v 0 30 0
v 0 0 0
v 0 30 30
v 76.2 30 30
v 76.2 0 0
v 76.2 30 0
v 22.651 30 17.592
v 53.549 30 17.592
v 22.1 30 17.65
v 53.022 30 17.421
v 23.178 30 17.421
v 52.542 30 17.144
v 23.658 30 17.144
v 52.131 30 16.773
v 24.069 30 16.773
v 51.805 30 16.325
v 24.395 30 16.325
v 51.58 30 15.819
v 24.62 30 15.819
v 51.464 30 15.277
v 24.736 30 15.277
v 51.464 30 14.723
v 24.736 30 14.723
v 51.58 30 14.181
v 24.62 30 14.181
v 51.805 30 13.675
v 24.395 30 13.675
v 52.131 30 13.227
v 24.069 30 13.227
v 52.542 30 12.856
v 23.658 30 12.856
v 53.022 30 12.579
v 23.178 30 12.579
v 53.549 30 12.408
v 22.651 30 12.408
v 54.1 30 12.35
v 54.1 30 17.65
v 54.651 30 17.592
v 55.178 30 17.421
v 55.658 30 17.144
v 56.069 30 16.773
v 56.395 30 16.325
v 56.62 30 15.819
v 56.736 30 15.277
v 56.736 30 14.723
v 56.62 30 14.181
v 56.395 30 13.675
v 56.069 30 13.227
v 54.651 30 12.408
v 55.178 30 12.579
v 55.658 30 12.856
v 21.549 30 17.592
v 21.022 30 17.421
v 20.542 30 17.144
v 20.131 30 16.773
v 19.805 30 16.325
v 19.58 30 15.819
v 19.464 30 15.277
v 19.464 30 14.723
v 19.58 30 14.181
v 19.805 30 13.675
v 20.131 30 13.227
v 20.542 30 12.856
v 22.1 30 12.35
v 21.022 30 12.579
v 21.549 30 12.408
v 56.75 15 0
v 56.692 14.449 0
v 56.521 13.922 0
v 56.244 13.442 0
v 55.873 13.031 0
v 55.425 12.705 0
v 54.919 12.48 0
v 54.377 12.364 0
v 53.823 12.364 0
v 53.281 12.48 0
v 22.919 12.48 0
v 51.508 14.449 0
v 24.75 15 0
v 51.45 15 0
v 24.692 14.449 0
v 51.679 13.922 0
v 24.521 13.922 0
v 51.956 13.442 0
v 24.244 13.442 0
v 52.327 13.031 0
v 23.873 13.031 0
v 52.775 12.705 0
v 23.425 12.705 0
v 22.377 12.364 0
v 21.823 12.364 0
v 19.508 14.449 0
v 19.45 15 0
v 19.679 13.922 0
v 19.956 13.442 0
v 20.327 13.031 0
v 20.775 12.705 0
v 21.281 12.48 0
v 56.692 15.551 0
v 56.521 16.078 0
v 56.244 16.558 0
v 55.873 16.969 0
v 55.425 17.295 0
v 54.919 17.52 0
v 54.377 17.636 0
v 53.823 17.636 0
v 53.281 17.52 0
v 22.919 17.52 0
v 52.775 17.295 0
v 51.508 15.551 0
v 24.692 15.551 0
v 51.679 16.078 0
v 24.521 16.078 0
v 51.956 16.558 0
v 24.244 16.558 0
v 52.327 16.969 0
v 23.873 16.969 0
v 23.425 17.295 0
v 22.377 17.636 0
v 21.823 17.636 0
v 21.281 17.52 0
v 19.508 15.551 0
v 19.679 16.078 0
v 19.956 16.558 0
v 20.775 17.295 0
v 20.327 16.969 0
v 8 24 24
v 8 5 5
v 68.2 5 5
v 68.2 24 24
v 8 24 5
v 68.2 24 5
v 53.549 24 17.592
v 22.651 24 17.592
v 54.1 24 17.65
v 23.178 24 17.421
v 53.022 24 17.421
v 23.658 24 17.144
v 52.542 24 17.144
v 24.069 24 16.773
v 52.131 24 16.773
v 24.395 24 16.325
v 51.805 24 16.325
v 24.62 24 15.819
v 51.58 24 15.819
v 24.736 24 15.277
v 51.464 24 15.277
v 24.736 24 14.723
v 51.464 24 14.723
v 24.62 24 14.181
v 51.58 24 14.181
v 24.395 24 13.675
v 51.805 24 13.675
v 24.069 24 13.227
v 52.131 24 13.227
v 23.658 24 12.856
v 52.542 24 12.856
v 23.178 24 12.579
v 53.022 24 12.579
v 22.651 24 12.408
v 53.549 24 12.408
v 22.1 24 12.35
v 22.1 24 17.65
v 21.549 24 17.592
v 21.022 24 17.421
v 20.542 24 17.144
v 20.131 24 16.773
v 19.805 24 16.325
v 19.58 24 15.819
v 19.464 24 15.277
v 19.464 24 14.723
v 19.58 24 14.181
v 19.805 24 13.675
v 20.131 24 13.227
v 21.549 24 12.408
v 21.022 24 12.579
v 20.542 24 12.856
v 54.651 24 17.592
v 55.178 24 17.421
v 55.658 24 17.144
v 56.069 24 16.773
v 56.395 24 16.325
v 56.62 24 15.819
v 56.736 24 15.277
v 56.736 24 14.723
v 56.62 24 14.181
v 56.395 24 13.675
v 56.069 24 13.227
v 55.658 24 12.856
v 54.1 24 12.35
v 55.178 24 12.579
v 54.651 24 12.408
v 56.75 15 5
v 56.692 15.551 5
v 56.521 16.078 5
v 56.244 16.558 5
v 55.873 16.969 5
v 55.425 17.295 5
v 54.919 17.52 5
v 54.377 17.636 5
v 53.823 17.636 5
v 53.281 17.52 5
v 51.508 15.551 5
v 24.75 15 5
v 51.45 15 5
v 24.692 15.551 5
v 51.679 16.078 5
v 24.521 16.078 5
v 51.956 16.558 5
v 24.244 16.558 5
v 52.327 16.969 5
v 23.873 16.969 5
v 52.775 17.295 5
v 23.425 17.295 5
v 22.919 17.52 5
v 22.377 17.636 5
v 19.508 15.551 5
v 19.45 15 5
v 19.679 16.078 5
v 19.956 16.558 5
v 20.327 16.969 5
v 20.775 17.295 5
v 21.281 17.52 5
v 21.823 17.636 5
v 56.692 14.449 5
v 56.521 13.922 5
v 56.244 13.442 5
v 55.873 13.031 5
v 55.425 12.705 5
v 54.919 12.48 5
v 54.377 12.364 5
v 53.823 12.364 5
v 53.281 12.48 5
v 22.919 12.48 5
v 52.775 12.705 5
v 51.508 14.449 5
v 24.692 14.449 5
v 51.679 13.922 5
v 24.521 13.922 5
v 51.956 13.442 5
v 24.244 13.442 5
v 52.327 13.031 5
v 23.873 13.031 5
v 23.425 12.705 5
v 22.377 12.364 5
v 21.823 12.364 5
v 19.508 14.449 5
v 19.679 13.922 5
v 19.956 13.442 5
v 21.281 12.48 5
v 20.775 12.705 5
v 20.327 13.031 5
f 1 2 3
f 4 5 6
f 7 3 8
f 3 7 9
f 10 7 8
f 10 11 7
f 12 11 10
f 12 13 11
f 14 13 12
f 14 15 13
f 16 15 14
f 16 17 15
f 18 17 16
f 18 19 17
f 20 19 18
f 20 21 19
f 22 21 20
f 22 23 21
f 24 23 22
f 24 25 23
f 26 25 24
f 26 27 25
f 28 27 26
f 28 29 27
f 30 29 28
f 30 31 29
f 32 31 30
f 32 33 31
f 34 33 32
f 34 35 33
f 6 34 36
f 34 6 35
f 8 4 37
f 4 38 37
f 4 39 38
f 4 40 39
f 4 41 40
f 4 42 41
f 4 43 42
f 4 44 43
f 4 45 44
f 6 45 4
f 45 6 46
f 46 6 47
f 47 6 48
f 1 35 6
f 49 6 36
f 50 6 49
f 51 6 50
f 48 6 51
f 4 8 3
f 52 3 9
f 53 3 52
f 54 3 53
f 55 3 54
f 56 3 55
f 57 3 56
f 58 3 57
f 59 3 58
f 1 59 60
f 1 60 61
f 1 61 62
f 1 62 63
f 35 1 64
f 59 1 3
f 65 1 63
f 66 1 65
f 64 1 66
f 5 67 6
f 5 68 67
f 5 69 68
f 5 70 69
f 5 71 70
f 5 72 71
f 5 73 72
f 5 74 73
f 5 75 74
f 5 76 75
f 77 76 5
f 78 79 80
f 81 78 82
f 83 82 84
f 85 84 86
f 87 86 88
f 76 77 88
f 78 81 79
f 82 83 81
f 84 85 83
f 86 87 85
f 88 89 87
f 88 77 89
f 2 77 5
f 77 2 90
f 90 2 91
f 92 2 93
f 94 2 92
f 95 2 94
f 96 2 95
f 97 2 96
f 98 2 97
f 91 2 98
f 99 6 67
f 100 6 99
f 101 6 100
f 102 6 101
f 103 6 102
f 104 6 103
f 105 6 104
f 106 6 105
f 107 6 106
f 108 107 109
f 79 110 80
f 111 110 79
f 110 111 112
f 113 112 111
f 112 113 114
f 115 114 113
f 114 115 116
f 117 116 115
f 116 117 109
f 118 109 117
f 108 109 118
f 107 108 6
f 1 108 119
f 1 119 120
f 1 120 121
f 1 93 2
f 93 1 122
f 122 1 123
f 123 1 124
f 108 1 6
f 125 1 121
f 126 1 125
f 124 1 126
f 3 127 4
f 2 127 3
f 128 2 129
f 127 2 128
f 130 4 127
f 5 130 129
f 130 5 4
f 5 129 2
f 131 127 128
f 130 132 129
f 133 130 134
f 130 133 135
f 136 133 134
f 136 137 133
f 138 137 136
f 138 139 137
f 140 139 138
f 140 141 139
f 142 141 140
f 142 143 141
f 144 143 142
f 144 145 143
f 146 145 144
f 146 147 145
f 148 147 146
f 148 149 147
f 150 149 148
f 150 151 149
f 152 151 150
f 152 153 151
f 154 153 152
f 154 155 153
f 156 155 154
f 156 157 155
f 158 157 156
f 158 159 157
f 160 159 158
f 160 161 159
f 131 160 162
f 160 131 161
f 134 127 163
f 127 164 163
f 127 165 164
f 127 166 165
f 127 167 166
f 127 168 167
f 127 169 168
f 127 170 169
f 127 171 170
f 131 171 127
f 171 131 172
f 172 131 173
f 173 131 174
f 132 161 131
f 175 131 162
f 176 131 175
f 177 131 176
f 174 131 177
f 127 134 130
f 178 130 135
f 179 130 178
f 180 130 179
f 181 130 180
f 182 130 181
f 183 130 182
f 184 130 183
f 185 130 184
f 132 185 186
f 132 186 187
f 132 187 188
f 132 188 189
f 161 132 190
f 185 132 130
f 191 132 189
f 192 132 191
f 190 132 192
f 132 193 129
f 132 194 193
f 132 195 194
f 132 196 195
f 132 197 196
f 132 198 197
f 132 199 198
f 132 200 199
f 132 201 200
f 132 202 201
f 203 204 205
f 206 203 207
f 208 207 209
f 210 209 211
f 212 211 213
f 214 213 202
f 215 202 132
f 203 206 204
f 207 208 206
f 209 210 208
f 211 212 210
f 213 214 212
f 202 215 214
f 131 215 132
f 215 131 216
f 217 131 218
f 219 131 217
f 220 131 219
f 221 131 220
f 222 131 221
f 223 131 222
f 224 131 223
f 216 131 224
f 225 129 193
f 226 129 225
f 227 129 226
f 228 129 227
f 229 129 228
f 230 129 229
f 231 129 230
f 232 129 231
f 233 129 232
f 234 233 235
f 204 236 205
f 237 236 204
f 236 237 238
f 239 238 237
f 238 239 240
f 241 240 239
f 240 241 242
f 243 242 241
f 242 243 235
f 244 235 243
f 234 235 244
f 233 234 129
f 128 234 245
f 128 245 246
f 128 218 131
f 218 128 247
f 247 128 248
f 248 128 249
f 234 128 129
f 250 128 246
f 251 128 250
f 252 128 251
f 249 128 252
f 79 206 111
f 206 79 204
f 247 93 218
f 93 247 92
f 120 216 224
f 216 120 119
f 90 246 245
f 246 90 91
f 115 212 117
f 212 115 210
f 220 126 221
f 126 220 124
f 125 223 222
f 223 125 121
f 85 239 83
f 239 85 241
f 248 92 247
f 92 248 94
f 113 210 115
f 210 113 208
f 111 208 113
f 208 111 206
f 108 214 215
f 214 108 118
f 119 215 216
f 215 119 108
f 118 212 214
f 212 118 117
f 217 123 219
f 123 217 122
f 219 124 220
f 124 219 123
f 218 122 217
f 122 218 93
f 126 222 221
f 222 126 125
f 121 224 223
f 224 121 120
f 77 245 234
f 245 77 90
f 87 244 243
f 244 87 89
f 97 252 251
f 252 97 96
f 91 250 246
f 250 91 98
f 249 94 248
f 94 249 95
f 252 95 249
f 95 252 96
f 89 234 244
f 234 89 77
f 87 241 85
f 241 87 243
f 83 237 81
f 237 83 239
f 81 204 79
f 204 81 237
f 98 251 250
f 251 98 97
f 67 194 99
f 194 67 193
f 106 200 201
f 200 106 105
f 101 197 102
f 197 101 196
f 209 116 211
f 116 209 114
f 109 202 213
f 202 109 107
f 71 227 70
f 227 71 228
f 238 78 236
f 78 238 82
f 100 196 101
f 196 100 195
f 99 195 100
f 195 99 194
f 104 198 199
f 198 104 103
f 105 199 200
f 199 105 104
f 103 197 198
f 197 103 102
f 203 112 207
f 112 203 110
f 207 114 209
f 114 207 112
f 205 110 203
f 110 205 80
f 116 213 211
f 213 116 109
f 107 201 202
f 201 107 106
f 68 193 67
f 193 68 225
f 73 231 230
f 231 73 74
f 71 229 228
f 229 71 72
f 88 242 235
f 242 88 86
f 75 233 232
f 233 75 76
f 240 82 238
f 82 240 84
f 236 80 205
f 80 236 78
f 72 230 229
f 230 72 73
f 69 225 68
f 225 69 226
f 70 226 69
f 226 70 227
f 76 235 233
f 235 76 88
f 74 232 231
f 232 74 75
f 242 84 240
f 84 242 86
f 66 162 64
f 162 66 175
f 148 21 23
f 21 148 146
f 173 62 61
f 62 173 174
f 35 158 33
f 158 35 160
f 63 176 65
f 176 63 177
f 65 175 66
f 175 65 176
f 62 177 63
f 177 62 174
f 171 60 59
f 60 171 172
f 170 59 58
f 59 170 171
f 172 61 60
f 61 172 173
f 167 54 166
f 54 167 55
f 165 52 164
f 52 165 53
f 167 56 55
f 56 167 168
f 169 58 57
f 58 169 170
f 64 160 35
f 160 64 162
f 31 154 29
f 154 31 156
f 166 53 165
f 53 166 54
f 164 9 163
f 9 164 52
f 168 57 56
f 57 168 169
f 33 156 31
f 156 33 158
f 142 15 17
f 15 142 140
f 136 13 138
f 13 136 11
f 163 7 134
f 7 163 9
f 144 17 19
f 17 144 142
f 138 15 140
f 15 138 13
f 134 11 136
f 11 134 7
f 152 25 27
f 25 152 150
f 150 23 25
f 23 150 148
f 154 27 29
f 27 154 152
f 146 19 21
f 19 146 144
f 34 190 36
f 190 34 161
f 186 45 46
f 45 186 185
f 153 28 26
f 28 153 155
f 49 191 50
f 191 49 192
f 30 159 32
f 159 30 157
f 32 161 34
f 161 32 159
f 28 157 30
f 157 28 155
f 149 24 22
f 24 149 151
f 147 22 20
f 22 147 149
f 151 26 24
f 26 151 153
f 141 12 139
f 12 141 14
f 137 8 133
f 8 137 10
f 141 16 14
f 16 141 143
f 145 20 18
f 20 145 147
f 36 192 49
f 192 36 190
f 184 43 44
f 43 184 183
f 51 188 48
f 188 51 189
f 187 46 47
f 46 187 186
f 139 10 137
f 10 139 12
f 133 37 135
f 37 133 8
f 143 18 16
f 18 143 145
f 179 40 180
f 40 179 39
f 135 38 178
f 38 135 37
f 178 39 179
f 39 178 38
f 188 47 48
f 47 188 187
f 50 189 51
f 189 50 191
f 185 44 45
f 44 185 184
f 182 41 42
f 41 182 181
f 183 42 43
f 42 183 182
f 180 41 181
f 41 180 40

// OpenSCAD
hole_diameter = 5.3;
hole_radius   = hole_diameter / 2;

difference(){
    cube([76.2,30,30]);

    translate([-2,-2,-2])
    rotate([45,0,0])
    cube([80,50,25]);

    translate([8,-10,5])
    cube([76.2-16,34,34]);

    translate([22.1,15,-5])
    cylinder(r=hole_radius, h=20, $fn=30);

    translate([76.2-22.1,15,-5])
    cylinder(r=hole_radius, h=20, $fn=30);

    translate([22.1,-20,15])
    rotate([0,90,90])
    cylinder(r=hole_radius, h=80, $fn=30);

    translate([76.2-22.1,-20,15])
    rotate([0,90,90])
    cylinder(r=hole_radius, h=80, $fn=30);

}
